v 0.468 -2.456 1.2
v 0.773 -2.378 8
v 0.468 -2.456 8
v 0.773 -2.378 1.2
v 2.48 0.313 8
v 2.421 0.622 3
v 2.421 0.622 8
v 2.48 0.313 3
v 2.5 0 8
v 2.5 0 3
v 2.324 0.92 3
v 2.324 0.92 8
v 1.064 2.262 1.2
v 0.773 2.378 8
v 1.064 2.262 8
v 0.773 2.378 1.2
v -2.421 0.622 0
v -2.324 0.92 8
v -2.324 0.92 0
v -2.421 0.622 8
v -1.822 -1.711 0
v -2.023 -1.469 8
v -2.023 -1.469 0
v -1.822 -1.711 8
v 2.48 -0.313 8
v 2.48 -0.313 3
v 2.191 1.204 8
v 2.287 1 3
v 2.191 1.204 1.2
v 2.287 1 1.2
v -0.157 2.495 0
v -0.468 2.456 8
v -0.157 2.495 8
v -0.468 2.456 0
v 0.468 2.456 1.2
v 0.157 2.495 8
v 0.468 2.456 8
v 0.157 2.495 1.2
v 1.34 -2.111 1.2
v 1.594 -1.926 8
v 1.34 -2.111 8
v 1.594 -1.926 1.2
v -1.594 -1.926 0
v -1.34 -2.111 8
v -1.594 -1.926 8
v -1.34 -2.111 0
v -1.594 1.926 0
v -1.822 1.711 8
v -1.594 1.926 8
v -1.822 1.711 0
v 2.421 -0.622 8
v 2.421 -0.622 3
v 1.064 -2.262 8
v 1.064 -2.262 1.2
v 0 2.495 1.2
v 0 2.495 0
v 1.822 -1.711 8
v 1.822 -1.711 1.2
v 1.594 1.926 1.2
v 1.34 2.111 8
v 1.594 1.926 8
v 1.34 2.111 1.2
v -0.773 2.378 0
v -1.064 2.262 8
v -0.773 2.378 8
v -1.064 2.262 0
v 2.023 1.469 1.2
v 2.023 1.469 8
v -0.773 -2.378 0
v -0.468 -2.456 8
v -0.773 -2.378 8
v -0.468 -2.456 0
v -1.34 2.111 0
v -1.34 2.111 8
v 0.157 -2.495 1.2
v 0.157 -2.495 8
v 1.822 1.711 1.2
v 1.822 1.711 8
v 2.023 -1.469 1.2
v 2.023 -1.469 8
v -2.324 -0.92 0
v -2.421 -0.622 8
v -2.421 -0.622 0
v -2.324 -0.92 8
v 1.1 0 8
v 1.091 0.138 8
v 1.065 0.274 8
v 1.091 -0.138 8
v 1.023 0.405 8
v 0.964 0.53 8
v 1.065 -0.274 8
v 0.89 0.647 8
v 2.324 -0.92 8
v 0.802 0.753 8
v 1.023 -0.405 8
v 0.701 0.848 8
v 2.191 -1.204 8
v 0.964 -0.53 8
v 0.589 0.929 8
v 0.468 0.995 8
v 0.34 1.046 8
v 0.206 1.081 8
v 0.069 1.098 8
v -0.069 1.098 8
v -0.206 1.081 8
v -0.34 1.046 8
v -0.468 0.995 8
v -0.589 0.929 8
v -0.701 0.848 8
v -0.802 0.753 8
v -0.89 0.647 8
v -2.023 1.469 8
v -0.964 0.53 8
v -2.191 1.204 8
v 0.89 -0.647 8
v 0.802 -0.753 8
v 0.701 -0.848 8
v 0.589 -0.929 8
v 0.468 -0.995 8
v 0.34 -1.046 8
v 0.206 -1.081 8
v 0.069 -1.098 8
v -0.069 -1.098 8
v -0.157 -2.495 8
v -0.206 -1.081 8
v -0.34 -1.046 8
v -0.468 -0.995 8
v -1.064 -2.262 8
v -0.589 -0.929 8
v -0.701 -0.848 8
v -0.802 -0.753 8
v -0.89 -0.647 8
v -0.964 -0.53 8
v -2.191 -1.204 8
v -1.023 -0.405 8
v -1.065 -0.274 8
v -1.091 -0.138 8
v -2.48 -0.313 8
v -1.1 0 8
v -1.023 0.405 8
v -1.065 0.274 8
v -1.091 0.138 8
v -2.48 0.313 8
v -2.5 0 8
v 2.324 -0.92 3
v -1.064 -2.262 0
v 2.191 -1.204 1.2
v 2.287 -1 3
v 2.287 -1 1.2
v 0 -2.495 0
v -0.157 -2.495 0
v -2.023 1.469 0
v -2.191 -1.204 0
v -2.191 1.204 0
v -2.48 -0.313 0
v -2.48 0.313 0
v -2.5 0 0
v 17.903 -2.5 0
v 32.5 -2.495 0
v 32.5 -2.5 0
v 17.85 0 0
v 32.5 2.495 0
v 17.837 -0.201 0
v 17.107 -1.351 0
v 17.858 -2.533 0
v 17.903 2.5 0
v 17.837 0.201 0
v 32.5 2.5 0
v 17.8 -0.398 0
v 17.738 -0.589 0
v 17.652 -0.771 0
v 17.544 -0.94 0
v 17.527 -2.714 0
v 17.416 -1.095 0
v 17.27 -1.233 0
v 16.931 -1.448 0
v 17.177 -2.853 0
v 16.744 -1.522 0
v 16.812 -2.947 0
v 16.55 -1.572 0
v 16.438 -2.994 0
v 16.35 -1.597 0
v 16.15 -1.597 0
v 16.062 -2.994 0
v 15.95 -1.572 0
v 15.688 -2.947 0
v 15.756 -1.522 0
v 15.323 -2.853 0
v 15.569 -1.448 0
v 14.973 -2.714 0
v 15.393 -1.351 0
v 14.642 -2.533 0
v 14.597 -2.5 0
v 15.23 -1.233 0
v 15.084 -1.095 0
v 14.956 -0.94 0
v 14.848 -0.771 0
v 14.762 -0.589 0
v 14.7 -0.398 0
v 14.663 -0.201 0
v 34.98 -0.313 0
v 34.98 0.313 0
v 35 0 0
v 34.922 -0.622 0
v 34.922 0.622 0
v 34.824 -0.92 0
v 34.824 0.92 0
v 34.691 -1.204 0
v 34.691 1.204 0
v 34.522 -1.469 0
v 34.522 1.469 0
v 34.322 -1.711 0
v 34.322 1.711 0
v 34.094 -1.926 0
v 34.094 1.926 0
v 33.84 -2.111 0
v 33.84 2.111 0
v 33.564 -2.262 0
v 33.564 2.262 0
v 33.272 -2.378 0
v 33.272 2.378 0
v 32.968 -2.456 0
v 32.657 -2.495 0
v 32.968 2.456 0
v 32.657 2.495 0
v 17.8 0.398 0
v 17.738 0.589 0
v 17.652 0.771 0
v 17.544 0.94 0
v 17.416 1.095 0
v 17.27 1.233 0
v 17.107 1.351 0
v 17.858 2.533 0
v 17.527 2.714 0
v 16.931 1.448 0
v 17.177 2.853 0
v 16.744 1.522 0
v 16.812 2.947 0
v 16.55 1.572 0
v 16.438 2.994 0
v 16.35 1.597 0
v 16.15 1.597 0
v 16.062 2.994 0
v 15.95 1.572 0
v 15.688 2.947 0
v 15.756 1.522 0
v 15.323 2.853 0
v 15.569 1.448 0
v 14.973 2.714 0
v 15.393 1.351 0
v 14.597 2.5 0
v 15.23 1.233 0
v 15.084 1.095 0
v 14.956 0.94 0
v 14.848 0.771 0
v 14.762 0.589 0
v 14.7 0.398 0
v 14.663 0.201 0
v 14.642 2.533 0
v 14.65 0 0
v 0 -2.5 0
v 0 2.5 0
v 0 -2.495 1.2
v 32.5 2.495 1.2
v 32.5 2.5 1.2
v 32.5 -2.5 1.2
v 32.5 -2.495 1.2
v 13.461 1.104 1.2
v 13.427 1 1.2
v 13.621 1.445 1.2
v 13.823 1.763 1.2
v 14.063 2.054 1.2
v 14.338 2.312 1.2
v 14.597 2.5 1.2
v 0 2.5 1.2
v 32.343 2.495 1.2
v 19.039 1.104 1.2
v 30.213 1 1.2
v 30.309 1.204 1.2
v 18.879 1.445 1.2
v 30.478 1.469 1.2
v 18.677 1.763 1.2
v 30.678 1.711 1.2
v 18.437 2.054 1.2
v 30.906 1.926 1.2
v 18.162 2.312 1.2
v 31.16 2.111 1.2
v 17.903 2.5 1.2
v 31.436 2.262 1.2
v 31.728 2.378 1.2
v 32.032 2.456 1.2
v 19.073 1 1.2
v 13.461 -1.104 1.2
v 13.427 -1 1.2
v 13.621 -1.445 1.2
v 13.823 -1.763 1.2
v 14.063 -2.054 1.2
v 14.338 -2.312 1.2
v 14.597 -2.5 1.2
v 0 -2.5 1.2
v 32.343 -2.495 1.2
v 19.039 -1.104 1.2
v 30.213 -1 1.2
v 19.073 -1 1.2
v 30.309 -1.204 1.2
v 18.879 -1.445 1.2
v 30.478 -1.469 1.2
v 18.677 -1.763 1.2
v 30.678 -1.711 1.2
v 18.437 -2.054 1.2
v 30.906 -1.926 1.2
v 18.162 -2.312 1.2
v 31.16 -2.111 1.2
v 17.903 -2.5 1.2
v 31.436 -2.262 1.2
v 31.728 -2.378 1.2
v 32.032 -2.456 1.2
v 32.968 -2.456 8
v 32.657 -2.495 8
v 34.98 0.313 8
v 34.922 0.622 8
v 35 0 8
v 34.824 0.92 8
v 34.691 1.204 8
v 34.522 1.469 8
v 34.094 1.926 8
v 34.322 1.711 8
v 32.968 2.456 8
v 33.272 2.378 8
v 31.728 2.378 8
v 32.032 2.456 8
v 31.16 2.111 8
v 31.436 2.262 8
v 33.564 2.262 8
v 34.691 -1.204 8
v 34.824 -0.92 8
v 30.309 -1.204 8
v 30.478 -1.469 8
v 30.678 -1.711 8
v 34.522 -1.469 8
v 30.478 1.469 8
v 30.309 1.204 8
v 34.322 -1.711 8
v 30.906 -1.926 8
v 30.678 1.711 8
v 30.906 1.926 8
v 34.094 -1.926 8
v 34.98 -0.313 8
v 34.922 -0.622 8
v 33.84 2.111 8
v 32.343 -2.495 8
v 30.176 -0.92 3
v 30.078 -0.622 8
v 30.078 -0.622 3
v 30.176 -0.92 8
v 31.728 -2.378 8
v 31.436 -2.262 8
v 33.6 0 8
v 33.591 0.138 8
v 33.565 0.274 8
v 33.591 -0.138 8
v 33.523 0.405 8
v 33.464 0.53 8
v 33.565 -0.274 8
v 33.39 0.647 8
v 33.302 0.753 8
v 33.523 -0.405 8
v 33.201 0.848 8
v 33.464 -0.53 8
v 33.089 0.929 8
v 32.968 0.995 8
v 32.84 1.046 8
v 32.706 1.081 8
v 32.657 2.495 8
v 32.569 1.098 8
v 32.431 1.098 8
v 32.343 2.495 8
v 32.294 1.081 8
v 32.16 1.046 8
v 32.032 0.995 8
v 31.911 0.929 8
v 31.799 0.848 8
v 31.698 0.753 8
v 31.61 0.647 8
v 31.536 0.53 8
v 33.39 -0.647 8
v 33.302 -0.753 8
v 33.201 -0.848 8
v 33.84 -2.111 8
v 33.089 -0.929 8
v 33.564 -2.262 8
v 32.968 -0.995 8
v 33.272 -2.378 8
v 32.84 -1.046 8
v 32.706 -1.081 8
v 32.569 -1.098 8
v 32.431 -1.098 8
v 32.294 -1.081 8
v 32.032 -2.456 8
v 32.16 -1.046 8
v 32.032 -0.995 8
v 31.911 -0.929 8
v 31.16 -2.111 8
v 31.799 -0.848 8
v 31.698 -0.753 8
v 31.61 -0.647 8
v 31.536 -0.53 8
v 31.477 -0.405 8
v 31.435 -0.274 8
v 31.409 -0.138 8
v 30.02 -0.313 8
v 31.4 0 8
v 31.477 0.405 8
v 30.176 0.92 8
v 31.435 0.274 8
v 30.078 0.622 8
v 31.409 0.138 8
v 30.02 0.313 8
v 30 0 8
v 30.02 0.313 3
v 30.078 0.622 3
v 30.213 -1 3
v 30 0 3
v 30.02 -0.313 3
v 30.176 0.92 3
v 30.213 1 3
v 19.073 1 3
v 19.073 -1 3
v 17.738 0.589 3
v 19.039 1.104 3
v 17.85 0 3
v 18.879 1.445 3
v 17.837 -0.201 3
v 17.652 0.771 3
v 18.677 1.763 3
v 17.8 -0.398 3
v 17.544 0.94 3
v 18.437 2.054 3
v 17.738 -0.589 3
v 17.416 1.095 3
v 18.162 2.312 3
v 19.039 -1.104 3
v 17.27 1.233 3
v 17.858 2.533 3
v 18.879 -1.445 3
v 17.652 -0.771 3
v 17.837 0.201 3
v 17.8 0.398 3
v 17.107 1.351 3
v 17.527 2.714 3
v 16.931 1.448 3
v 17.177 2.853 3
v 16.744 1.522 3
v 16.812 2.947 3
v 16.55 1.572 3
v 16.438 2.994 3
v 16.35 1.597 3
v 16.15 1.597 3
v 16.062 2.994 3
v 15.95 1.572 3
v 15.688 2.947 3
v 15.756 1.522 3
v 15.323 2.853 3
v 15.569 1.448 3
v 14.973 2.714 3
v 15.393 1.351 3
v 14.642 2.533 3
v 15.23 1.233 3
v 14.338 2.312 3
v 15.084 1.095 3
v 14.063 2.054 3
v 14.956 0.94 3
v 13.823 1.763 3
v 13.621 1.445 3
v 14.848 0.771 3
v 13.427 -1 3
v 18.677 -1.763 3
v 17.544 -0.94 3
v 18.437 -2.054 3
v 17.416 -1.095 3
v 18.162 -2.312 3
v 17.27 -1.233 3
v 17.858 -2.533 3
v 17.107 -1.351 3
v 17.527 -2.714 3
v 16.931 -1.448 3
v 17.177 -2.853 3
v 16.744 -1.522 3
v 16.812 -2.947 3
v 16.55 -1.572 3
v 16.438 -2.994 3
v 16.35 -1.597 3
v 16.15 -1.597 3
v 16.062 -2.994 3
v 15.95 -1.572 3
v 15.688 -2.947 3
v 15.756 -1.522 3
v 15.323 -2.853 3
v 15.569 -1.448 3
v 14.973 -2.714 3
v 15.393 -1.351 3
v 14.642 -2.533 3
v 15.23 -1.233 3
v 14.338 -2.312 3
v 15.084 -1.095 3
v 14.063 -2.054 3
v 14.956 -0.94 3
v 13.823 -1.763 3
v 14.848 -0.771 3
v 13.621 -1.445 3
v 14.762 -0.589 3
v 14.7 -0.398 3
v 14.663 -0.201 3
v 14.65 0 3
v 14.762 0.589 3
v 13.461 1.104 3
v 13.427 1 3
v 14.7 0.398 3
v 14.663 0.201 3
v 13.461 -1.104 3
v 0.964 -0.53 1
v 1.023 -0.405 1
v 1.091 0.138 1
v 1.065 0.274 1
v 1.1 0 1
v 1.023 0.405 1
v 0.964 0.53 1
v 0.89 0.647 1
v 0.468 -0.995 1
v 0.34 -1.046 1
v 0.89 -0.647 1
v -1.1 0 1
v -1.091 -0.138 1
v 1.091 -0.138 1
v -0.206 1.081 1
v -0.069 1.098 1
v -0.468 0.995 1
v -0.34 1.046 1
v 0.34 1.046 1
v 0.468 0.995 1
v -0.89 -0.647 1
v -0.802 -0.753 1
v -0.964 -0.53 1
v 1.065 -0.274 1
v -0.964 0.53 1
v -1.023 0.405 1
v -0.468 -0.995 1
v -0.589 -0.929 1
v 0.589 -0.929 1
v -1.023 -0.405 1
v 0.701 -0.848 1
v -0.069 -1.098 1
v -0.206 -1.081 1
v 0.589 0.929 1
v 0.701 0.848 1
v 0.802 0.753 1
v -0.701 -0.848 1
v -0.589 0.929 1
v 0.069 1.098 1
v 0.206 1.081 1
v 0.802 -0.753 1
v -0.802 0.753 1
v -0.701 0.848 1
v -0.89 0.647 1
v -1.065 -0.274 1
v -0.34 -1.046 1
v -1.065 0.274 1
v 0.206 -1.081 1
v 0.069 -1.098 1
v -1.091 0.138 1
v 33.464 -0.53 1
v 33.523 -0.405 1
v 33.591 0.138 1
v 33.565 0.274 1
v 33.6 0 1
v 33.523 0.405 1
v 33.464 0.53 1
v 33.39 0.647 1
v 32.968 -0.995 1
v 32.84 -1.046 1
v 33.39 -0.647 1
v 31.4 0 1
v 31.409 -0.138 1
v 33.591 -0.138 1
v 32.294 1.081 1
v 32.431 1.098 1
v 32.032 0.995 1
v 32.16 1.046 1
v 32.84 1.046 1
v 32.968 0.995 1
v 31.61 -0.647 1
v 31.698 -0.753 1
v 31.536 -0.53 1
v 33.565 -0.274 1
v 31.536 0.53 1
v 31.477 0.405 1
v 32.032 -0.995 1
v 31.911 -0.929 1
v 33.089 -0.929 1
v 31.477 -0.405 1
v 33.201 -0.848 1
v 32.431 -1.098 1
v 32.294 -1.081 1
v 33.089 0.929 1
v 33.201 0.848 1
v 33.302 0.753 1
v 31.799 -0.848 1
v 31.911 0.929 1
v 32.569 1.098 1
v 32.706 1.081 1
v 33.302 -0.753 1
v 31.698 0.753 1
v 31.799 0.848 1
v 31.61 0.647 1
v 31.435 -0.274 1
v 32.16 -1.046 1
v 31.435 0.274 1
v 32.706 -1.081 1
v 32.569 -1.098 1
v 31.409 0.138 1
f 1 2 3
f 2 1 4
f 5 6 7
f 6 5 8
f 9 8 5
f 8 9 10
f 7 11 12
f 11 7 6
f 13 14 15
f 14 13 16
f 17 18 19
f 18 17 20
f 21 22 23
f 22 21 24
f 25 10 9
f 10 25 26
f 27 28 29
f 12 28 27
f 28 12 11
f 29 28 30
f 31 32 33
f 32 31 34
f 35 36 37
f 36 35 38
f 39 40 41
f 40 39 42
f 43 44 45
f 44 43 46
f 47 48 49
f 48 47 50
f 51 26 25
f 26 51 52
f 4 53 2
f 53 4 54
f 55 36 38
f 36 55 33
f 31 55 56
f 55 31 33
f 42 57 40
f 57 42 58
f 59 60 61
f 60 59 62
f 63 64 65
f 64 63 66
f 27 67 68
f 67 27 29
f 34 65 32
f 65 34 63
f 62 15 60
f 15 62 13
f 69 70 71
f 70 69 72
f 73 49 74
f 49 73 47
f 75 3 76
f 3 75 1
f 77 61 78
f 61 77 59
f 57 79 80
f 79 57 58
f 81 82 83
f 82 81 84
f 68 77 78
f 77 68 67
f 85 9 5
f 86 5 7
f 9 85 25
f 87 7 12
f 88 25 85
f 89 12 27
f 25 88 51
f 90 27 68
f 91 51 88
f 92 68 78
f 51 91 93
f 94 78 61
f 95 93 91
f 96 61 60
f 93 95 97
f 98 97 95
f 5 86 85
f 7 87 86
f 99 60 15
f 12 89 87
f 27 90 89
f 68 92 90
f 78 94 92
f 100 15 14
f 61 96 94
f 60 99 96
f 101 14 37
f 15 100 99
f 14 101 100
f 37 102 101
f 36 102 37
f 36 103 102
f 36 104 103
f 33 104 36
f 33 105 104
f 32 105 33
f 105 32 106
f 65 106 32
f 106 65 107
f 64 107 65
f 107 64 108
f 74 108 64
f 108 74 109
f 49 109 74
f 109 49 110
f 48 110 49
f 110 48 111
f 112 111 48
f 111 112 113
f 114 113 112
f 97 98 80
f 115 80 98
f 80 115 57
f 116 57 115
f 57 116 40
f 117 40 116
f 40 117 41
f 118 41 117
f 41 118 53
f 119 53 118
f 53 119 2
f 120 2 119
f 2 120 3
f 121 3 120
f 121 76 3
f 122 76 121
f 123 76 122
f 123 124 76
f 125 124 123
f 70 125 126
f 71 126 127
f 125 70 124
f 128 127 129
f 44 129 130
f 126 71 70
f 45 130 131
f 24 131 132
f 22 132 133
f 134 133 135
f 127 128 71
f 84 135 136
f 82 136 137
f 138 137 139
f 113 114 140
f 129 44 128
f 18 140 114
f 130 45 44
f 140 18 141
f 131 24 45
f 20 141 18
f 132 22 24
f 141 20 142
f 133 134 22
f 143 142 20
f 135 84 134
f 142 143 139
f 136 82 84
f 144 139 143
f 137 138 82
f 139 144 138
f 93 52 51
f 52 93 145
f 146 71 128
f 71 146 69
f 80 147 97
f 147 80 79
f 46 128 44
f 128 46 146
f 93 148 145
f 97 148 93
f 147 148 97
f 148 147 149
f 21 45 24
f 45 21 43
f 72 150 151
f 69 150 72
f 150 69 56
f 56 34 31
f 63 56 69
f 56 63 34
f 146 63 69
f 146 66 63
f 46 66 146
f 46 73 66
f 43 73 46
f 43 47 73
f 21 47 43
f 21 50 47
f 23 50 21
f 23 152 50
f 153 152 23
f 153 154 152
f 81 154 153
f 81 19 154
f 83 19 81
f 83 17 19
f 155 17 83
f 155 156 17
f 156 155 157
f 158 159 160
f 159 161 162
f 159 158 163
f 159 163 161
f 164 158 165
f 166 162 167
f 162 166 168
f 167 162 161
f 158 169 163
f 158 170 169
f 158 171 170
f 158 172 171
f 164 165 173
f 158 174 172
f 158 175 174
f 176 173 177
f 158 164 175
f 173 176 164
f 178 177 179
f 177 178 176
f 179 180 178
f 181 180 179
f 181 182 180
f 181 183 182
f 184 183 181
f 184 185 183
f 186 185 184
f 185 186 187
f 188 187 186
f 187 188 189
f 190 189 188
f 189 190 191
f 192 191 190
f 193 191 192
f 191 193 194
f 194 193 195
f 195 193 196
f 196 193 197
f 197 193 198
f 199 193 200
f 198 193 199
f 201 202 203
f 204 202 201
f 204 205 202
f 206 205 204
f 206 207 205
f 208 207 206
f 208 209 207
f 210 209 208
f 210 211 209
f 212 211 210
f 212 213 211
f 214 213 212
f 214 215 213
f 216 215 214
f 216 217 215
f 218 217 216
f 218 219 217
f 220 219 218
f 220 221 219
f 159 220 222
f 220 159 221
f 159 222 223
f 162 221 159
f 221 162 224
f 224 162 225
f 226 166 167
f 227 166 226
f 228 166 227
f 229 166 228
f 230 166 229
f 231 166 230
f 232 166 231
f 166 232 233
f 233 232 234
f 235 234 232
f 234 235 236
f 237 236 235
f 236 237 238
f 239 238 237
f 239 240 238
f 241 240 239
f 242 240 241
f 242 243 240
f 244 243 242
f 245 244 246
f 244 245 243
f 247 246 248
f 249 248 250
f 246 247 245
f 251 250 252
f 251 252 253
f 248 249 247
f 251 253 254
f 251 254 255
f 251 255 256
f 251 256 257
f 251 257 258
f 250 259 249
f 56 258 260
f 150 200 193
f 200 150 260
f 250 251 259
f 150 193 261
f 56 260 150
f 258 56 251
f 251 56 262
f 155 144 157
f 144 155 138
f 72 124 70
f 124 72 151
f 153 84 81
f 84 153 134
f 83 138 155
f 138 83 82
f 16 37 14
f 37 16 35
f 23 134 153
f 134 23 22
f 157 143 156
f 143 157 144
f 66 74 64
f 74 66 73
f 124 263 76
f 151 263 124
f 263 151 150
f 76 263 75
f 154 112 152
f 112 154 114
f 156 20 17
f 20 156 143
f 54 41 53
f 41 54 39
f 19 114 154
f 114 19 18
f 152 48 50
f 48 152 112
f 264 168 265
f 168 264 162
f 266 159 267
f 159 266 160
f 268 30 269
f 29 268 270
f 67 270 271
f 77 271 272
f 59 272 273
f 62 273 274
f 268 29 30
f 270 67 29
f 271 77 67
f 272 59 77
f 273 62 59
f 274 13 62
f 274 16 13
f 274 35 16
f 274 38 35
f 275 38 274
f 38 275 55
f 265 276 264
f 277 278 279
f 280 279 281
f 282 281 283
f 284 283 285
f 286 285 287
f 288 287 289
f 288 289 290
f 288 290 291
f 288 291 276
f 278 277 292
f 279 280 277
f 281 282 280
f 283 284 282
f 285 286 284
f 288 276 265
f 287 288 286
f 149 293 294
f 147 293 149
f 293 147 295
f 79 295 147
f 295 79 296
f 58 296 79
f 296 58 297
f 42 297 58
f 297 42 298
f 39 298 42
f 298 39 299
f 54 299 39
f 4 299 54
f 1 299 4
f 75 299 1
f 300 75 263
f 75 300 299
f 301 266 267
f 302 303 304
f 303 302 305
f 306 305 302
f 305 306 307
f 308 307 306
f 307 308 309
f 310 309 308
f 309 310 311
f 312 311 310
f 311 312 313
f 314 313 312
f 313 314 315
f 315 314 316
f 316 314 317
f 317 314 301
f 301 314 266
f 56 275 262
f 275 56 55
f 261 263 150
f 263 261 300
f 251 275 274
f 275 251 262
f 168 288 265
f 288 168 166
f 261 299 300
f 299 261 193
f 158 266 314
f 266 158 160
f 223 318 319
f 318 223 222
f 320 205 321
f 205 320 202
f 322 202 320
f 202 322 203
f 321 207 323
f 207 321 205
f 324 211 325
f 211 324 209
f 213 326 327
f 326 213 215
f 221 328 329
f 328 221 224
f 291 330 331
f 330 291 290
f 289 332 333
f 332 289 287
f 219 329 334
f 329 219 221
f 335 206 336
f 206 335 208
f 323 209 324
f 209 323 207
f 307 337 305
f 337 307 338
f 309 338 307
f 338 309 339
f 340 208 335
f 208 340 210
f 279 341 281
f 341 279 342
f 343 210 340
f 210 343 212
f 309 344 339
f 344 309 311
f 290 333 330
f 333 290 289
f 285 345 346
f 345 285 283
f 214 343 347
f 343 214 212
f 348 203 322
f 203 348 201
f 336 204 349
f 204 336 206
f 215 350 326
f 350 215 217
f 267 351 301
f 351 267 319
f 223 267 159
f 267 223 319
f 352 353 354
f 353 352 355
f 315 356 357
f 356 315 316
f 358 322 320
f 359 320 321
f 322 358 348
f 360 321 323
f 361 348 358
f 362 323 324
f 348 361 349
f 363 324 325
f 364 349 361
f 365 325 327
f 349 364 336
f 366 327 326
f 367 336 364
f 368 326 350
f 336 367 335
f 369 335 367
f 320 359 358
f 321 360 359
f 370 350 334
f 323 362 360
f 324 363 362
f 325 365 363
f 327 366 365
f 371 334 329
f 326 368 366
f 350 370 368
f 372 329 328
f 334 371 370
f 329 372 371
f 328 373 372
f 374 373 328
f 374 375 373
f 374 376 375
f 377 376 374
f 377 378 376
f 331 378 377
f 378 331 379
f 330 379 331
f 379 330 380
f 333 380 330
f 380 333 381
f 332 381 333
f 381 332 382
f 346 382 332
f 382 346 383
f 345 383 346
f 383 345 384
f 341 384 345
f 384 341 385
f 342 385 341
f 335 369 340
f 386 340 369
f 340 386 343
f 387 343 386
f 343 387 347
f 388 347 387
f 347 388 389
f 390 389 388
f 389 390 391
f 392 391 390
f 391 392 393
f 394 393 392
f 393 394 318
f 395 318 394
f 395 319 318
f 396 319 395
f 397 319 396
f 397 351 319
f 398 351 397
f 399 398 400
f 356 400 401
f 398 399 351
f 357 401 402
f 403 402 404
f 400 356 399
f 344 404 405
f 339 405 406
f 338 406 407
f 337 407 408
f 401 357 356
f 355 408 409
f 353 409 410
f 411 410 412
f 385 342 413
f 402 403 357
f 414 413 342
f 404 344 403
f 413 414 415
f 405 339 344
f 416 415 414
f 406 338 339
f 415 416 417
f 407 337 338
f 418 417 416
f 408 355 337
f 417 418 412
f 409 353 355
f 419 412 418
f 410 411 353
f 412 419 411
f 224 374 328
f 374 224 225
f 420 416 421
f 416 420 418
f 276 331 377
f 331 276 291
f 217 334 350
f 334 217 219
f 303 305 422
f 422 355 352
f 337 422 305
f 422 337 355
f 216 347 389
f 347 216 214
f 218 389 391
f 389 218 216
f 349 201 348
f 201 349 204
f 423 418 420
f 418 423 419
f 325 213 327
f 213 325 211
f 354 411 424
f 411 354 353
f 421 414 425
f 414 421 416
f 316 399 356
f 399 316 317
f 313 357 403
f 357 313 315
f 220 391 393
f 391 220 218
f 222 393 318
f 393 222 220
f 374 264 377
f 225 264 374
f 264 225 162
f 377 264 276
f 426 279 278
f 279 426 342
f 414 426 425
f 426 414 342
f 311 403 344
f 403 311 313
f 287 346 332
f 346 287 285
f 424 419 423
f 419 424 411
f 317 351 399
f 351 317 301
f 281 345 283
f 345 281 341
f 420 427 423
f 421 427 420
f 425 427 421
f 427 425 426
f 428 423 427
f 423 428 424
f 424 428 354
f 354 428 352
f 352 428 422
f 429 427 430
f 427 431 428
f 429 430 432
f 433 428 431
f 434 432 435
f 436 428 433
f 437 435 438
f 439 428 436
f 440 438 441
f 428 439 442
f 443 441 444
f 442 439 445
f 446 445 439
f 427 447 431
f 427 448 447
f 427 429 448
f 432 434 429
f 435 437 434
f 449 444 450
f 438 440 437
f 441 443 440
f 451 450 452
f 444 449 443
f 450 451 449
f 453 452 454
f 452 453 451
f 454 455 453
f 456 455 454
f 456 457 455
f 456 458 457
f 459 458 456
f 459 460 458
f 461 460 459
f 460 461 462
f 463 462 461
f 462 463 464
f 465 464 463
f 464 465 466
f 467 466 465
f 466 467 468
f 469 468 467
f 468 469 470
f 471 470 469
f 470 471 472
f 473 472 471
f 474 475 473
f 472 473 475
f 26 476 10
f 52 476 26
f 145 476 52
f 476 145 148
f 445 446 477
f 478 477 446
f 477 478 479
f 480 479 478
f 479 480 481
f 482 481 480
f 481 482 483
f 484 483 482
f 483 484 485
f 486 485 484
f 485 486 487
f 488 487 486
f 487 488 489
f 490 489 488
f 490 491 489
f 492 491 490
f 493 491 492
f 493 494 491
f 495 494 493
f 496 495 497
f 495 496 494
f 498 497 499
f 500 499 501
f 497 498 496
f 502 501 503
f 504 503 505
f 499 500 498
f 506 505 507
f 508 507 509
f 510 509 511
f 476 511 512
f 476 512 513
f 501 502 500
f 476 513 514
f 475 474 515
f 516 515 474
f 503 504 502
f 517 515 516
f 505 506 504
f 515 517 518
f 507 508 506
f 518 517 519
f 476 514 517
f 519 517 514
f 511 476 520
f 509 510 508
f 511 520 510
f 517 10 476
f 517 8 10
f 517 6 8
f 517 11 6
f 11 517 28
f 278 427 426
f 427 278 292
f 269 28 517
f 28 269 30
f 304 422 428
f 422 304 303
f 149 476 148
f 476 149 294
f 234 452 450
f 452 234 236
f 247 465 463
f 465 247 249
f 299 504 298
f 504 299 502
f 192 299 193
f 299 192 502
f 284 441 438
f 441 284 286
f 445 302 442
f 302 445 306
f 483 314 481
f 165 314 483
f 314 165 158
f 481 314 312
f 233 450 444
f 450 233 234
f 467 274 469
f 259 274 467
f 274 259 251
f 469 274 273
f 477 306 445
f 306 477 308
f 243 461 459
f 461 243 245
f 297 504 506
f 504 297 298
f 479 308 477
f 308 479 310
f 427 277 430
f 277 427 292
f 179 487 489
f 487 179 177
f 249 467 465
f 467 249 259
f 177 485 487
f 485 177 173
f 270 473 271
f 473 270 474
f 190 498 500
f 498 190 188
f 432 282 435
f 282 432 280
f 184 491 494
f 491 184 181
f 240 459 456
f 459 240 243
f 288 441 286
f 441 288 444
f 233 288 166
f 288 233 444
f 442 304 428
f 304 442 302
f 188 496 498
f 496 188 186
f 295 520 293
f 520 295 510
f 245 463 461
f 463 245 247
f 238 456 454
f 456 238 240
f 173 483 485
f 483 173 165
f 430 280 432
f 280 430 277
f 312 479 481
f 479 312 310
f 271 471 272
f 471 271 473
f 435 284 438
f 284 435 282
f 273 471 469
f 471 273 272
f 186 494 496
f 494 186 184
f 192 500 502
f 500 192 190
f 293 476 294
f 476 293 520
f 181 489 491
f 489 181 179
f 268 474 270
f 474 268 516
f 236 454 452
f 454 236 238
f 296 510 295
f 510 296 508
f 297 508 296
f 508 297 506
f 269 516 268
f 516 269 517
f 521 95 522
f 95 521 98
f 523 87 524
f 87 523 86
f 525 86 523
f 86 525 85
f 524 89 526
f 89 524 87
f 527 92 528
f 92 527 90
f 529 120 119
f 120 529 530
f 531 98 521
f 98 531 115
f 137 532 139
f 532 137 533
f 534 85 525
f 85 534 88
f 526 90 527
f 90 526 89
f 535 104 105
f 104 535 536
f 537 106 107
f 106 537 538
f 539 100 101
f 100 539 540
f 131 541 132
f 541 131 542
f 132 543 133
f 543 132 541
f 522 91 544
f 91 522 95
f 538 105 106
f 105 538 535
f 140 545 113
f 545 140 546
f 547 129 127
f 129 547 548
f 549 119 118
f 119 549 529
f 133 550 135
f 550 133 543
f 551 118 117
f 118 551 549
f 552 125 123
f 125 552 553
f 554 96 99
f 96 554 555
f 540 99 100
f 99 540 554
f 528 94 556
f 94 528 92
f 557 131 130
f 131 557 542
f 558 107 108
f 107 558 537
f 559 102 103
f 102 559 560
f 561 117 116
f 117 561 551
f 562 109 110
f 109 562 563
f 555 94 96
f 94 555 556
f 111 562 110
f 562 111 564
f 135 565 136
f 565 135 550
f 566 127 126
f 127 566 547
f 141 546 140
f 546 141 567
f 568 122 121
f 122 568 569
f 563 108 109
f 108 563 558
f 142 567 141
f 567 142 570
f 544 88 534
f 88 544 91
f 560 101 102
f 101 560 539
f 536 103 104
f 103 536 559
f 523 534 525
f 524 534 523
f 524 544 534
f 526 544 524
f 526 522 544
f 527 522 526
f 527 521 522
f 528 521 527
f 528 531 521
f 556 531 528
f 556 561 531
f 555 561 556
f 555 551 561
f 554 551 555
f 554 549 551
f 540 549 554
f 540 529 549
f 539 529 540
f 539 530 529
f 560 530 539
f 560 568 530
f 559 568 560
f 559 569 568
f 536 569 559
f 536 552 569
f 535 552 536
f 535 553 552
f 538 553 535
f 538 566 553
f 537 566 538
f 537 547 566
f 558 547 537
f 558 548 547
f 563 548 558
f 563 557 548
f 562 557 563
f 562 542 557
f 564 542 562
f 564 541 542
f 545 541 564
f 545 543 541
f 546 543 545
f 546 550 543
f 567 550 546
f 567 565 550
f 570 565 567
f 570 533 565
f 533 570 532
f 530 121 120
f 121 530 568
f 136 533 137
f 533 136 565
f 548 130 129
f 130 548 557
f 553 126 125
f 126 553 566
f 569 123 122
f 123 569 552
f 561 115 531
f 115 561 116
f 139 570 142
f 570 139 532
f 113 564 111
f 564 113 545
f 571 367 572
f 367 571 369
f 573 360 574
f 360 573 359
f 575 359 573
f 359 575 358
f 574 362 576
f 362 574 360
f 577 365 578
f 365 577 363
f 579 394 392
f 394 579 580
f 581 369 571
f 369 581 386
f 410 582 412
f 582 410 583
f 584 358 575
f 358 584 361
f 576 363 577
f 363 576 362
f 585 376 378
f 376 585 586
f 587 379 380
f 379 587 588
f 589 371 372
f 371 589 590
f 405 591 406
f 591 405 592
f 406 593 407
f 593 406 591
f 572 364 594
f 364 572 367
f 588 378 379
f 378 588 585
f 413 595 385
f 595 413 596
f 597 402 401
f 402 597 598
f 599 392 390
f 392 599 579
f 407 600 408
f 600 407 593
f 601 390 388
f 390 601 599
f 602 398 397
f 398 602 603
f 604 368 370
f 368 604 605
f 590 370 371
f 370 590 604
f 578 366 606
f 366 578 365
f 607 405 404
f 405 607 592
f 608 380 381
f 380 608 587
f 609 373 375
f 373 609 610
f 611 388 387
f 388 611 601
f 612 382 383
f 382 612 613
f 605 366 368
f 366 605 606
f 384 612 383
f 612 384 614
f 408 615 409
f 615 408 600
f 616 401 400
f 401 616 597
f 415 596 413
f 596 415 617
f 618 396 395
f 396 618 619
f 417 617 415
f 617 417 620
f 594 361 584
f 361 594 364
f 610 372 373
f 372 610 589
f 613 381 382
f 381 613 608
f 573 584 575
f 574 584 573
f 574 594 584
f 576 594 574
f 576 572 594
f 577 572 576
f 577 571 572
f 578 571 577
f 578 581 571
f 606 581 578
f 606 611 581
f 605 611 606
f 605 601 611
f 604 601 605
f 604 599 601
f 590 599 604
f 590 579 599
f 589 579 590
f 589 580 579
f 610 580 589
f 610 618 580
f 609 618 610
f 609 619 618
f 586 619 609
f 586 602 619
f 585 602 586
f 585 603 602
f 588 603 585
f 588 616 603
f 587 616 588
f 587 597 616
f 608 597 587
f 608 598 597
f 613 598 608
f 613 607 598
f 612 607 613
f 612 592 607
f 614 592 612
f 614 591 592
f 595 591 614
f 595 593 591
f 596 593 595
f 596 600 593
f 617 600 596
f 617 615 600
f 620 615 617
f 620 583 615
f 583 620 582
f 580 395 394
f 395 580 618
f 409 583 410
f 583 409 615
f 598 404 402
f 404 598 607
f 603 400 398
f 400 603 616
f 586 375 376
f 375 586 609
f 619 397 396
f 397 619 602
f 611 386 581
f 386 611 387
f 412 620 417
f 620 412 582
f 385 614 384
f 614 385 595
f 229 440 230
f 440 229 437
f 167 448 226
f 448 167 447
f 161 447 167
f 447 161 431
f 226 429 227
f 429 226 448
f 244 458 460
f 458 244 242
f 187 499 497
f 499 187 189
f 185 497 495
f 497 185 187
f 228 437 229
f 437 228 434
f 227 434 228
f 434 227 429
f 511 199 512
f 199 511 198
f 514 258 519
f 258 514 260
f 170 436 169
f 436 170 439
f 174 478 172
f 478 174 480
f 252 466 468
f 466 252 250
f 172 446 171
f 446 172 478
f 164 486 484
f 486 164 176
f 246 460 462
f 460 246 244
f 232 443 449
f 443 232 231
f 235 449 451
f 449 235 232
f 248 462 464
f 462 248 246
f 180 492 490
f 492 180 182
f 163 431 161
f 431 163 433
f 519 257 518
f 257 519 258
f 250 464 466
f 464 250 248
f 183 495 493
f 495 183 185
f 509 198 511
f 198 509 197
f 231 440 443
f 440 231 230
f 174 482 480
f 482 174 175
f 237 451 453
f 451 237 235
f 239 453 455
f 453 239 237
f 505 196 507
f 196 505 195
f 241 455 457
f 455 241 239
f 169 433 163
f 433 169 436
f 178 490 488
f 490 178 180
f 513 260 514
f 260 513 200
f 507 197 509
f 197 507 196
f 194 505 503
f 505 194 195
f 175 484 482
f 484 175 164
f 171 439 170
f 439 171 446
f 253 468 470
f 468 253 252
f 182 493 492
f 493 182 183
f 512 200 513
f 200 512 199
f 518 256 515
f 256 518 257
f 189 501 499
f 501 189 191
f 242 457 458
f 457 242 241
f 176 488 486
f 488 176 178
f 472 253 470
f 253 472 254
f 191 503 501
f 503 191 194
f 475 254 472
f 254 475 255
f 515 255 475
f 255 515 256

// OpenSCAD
//////////////////////////////
//
// MakerFaire Prague 2019 badge
// (c) The Cave, 2019
// https://thecave.cz
//
// Licensed under MIT License.
//

//
// Holder for backup battery pack
//

$dist = 32.5;
$fn=50;

difference() {
    union() {
        cylinder(d=5,h=8);
        translate([0,-2.5,0]) cube([$dist,5,1.2]);
        translate([$dist,0,0]) cylinder(d=5,h=8);
        translate([0,-1,0]) cube([$dist,2,3]);
        translate([$dist/2,0,0]) cylinder(d=6,h=3);
    }
    
    translate([0,0,1]) cylinder(d=2.2,h=8);
    translate([$dist,0,1]) cylinder(d=2.2,h=8);
    translate([$dist/2,0,-1]) cylinder(d=3.2,h=5);
}
